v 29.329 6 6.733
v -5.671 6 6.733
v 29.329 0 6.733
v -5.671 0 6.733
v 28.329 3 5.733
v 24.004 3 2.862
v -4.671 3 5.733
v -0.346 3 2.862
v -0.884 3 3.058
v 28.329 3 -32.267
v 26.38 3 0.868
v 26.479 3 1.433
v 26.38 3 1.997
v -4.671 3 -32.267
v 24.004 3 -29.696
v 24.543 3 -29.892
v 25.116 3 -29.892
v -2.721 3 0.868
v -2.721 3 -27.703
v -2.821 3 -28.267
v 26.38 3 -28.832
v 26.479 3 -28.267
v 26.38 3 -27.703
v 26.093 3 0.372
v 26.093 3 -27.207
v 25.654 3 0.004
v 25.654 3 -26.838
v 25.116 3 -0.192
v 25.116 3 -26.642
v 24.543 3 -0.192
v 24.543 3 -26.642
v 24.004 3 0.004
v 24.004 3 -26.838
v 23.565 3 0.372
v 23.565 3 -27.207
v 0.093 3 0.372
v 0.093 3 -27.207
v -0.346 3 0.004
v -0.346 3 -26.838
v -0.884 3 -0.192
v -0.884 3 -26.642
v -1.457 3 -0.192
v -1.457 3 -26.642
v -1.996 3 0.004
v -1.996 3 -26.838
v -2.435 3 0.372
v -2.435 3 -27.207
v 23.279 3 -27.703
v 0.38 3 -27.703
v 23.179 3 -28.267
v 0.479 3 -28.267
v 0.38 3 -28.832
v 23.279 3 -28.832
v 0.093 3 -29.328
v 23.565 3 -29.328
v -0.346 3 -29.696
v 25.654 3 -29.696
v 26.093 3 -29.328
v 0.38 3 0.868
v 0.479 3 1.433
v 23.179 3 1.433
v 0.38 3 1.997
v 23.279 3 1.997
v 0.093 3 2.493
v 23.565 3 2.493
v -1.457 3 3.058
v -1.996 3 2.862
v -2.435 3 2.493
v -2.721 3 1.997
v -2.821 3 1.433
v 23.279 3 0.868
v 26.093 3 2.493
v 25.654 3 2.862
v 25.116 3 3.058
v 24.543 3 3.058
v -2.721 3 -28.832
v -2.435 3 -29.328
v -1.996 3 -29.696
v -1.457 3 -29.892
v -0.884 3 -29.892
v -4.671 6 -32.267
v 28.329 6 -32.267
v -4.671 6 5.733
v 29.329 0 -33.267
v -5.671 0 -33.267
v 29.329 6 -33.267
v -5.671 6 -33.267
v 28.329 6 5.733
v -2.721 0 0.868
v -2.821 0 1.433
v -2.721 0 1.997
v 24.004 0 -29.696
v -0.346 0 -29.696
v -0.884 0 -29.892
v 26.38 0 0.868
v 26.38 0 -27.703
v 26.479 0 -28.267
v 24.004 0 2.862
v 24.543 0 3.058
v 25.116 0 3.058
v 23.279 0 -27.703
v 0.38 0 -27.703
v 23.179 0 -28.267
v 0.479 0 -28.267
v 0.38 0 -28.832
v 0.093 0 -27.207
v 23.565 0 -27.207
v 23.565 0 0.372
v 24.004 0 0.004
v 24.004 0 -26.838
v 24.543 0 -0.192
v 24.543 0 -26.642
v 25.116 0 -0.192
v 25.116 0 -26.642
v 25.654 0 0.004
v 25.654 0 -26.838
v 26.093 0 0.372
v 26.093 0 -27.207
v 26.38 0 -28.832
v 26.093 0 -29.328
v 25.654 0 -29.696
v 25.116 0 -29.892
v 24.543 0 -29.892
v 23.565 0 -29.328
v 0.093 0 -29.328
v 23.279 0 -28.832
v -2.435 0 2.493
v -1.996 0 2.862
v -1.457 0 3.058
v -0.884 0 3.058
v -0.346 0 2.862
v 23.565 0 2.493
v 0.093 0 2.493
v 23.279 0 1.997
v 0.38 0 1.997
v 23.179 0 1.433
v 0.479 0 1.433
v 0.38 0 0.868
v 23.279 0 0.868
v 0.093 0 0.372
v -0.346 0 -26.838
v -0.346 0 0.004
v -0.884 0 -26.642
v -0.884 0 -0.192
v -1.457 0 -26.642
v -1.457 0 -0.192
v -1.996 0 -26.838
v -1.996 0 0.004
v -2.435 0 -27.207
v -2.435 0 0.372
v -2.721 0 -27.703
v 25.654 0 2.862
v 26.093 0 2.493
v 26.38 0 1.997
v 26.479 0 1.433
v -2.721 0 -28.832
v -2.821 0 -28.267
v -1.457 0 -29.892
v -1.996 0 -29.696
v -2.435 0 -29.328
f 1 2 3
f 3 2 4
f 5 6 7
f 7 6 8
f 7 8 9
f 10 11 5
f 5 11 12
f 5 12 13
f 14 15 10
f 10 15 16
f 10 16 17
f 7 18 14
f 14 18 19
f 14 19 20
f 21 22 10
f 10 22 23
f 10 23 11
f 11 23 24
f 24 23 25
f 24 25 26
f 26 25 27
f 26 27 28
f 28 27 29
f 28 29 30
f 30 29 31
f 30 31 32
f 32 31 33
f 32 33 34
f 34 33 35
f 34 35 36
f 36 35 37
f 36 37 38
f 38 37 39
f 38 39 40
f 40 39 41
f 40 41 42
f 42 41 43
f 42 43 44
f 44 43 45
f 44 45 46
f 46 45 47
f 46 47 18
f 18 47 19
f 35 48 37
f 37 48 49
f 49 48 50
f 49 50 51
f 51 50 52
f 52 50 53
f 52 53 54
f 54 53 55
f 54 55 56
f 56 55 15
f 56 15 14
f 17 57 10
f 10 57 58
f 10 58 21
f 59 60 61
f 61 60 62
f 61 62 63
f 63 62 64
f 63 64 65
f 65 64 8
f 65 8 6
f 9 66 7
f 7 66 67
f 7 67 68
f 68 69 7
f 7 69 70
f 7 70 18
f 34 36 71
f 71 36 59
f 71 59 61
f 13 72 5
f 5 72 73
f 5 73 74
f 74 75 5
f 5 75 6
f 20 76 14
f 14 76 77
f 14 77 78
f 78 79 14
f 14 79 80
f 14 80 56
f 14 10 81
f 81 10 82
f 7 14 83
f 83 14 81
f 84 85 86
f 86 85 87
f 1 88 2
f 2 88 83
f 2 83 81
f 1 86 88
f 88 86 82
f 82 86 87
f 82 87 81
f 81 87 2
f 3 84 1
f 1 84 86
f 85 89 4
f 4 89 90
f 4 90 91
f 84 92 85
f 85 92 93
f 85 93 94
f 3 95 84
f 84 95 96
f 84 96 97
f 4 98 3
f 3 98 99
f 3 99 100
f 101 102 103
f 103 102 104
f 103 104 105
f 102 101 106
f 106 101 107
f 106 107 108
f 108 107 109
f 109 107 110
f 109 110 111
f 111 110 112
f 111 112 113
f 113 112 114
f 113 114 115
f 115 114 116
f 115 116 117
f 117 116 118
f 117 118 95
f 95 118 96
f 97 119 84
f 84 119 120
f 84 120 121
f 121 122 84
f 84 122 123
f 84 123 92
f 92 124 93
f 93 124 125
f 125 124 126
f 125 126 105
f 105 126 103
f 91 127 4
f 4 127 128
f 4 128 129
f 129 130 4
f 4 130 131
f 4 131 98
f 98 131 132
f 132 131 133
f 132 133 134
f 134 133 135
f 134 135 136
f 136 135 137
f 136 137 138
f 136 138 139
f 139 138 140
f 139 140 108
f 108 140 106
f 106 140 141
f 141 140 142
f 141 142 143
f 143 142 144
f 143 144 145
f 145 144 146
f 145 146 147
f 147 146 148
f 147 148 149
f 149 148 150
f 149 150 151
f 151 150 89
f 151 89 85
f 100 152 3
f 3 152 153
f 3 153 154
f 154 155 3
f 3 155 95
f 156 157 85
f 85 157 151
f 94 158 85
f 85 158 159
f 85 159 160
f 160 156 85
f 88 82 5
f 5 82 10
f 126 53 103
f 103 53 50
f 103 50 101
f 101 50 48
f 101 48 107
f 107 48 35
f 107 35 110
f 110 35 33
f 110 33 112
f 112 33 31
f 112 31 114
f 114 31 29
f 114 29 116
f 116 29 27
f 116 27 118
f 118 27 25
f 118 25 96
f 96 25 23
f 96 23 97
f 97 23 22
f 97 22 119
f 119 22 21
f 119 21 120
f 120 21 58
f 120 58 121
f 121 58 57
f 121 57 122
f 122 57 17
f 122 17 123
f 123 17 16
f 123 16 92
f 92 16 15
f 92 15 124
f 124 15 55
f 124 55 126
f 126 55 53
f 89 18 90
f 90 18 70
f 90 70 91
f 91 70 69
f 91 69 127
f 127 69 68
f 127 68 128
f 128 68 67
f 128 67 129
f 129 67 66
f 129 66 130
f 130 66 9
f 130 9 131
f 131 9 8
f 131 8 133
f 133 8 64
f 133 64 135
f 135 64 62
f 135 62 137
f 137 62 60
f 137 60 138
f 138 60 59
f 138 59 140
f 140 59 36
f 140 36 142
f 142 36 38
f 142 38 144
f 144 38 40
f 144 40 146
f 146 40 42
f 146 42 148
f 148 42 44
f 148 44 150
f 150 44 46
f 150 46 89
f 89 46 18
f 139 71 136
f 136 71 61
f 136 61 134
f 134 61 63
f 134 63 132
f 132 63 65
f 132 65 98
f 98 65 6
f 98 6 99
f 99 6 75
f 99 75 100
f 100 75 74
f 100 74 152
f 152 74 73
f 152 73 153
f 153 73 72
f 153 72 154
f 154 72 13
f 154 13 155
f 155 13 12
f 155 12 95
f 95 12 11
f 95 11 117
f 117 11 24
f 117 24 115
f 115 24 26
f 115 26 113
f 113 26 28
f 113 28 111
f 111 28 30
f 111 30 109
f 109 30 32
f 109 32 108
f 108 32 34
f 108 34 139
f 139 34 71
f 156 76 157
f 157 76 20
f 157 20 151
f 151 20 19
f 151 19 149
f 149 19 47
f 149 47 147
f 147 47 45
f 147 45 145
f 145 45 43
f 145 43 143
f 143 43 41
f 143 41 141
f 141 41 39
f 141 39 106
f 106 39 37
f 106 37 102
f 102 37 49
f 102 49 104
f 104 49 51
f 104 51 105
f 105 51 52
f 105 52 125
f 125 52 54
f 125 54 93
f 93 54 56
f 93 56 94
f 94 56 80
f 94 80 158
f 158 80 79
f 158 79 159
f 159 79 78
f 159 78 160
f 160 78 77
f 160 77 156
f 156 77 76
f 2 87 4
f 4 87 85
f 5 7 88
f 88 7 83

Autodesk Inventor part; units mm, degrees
ref_plane "YZ Plane" through (0, 0, 0) normal (1, 0, 0) x (0, 1, 0)
ref_plane "XZ Plane" through (0, 0, 0) normal (0, 1, 0) x (-1, 0, 0)
ref_plane "XY Plane" through (0, 0, 0) normal (0, 0, 1) x (1, 0, 0)
sketch "Sketch1" plane through (0, 0, 0) normal (0, 1, 0) x (-1, 0, 0)
  line L0 (4.6706, 7.7326) -> (-28.3294, 7.7326)
  line L1 (-28.3294, 7.7326) -> (-28.3294, -32.2674)
  line L2 (-28.3294, -32.2674) -> (4.6706, -32.2674)
  line L3 (4.6706, -32.2674) -> (4.6706, 7.7326)
  point P0 (0, 0)
  dimension "d0" = 33
  dimension "d1" = 40
extrude "Extrusion1" add sketch "Sketch1" along normal blind 3
sketch "Sketch2" plane through (0, 3, 0) normal (0, 1, 0) x (1, 0, 0)
  line L0 (-4.6706, 32.2674) -> (-4.6706, -7.7326) projected
  line L1 (-4.6706, -7.7326) -> (-4.6706, -4.7326)
  line L2 (-4.6706, -4.7326) -> (-2.8206, -4.7326)
  line L3 (-2.8206, -4.7326) -> (-2.8206, 28.2674)
  line L4 (-2.8206, 28.2674) -> (26.4794, 28.2674)
  line L5 (26.4794, 28.2674) -> (26.4794, -4.7326)
  line L6 (-2.8206, -4.7326) -> (-1.1706, -4.7326)
  line L7 (26.4794, -4.7326) -> (24.8794, -4.7326)
  line L8 (24.8794, -4.7326) -> (24.8794, 28.2674)
  line L9 (-2.8206, 28.2674) -> (-1.1706, 28.2674)
  line L10 (-1.1706, -4.7326) -> (-1.1706, -1.4326)
  line L11 (-1.1706, -1.4326) -> (24.8794, -1.4326)
  point P0 (0, 0)
  dimension "d4" = 3
  dimension "d5" = 1.85
  dimension "d6" = 90
  dimension "d7" = 33
  dimension "d8" = 29.3
  dimension "d9" = 1.65
  dimension "d10" = 1.6
  dimension "d11" = 1.65
  dimension "d26" = 3.3
hole "Hole1" at (-1.1706, 3, 1.4326) at (24.8794, 3, 1.4326) at (24.8794, 3, -28.2674) at (-1.1706, 3, -28.2674) direction (0, -1, 0) diameter 3.3 end through all
sketch "Sketch3" plane through (0, 0, 0) normal (0, -1, 0) x (1, 0, 0)
  line L0 (28.3294, -32.2674) -> (-4.6706, -32.2674) projected
  line L1 (-4.6706, -32.2674) -> (-5.6706, -32.2674)
  line L2 (-5.6706, -32.2674) -> (-5.6706, -33.2674)
  line L3 (-5.6706, -33.2674) -> (29.3294, -33.2674)
  line L4 (29.3294, -33.2674) -> (29.3294, 8.7326)
  line L5 (28.3294, 7.7326) -> (28.3294, -32.2674) projected
  line L6 (29.3294, 8.7326) -> (-5.6706, 8.7326)
  line L7 (-5.6706, 8.7326) -> (-5.6706, -32.2674)
  circle A0 centre (24.8794, -28.2674) radius 1.65 projected
  circle A1 centre (-1.1706, -28.2674) radius 1.65 projected
  line L8 (-4.6706, 7.7326) -> (28.3294, 7.7326) projected
  line L9 (-4.6706, -32.2674) -> (-4.6706, 7.7326) projected
  line L10 (28.3294, -32.2674) -> (-4.6706, -32.2674) projected
  line L11 (28.3294, 7.7326) -> (28.3294, -32.2674) projected
  point P0 (0, 0)
  dimension "d19" = 1
  dimension "d20" = 1
  dimension "d21" = 35
  dimension "d22" = 42
  dimension "d23" = 90
extrude "Extrusion2" add sketch "Sketch3" against normal blind 6 contours L7 L6 L4 L3 L2
sketch "Sketch4" plane through (-5.6706, 0, 8.7326) normal (0, 0, 1) x (1, 0, 0)
  point P0 (5.6706, 0)
sketch "Sketch5" plane through (0, 0, 0) normal (0, -1, 0) x (1, 0, 0)
  line L0 (-5.6706, -33.2674) -> (-5.6706, 8.7326) projected
  line L1 (-5.6706, 8.7326) -> (-5.6706, 5.7326)
  line L2 (-5.6706, 5.7326) -> (29.3294, 5.7326)
  line L3 (29.3294, -33.2674) -> (29.3294, 8.7326) projected
  line L4 (29.3294, 8.7326) -> (-5.6706, 8.7326)
  line L5 (-5.6706, 5.7326) -> (-5.6706, 6.7326)
  line L6 (-5.6706, 6.7326) -> (29.3294, 6.7326)
  line L7 (28.3294, 7.7326) -> (-4.6706, 7.7326) projected
  line L8 (29.3294, 6.7326) -> (29.3294, 5.7326)
  point P0 (0, 0)
  dimension "d27" = 3
  dimension "d28" = 1
extrude "Extrusion3" cut sketch "Sketch5" against normal blind 10 contours L0 L4 L3 L6
extrude "Extrusion4" add sketch "Sketch5" against normal blind 6 contours L0 L6 L3 L2
properties part number "testing holes for circuit board"
